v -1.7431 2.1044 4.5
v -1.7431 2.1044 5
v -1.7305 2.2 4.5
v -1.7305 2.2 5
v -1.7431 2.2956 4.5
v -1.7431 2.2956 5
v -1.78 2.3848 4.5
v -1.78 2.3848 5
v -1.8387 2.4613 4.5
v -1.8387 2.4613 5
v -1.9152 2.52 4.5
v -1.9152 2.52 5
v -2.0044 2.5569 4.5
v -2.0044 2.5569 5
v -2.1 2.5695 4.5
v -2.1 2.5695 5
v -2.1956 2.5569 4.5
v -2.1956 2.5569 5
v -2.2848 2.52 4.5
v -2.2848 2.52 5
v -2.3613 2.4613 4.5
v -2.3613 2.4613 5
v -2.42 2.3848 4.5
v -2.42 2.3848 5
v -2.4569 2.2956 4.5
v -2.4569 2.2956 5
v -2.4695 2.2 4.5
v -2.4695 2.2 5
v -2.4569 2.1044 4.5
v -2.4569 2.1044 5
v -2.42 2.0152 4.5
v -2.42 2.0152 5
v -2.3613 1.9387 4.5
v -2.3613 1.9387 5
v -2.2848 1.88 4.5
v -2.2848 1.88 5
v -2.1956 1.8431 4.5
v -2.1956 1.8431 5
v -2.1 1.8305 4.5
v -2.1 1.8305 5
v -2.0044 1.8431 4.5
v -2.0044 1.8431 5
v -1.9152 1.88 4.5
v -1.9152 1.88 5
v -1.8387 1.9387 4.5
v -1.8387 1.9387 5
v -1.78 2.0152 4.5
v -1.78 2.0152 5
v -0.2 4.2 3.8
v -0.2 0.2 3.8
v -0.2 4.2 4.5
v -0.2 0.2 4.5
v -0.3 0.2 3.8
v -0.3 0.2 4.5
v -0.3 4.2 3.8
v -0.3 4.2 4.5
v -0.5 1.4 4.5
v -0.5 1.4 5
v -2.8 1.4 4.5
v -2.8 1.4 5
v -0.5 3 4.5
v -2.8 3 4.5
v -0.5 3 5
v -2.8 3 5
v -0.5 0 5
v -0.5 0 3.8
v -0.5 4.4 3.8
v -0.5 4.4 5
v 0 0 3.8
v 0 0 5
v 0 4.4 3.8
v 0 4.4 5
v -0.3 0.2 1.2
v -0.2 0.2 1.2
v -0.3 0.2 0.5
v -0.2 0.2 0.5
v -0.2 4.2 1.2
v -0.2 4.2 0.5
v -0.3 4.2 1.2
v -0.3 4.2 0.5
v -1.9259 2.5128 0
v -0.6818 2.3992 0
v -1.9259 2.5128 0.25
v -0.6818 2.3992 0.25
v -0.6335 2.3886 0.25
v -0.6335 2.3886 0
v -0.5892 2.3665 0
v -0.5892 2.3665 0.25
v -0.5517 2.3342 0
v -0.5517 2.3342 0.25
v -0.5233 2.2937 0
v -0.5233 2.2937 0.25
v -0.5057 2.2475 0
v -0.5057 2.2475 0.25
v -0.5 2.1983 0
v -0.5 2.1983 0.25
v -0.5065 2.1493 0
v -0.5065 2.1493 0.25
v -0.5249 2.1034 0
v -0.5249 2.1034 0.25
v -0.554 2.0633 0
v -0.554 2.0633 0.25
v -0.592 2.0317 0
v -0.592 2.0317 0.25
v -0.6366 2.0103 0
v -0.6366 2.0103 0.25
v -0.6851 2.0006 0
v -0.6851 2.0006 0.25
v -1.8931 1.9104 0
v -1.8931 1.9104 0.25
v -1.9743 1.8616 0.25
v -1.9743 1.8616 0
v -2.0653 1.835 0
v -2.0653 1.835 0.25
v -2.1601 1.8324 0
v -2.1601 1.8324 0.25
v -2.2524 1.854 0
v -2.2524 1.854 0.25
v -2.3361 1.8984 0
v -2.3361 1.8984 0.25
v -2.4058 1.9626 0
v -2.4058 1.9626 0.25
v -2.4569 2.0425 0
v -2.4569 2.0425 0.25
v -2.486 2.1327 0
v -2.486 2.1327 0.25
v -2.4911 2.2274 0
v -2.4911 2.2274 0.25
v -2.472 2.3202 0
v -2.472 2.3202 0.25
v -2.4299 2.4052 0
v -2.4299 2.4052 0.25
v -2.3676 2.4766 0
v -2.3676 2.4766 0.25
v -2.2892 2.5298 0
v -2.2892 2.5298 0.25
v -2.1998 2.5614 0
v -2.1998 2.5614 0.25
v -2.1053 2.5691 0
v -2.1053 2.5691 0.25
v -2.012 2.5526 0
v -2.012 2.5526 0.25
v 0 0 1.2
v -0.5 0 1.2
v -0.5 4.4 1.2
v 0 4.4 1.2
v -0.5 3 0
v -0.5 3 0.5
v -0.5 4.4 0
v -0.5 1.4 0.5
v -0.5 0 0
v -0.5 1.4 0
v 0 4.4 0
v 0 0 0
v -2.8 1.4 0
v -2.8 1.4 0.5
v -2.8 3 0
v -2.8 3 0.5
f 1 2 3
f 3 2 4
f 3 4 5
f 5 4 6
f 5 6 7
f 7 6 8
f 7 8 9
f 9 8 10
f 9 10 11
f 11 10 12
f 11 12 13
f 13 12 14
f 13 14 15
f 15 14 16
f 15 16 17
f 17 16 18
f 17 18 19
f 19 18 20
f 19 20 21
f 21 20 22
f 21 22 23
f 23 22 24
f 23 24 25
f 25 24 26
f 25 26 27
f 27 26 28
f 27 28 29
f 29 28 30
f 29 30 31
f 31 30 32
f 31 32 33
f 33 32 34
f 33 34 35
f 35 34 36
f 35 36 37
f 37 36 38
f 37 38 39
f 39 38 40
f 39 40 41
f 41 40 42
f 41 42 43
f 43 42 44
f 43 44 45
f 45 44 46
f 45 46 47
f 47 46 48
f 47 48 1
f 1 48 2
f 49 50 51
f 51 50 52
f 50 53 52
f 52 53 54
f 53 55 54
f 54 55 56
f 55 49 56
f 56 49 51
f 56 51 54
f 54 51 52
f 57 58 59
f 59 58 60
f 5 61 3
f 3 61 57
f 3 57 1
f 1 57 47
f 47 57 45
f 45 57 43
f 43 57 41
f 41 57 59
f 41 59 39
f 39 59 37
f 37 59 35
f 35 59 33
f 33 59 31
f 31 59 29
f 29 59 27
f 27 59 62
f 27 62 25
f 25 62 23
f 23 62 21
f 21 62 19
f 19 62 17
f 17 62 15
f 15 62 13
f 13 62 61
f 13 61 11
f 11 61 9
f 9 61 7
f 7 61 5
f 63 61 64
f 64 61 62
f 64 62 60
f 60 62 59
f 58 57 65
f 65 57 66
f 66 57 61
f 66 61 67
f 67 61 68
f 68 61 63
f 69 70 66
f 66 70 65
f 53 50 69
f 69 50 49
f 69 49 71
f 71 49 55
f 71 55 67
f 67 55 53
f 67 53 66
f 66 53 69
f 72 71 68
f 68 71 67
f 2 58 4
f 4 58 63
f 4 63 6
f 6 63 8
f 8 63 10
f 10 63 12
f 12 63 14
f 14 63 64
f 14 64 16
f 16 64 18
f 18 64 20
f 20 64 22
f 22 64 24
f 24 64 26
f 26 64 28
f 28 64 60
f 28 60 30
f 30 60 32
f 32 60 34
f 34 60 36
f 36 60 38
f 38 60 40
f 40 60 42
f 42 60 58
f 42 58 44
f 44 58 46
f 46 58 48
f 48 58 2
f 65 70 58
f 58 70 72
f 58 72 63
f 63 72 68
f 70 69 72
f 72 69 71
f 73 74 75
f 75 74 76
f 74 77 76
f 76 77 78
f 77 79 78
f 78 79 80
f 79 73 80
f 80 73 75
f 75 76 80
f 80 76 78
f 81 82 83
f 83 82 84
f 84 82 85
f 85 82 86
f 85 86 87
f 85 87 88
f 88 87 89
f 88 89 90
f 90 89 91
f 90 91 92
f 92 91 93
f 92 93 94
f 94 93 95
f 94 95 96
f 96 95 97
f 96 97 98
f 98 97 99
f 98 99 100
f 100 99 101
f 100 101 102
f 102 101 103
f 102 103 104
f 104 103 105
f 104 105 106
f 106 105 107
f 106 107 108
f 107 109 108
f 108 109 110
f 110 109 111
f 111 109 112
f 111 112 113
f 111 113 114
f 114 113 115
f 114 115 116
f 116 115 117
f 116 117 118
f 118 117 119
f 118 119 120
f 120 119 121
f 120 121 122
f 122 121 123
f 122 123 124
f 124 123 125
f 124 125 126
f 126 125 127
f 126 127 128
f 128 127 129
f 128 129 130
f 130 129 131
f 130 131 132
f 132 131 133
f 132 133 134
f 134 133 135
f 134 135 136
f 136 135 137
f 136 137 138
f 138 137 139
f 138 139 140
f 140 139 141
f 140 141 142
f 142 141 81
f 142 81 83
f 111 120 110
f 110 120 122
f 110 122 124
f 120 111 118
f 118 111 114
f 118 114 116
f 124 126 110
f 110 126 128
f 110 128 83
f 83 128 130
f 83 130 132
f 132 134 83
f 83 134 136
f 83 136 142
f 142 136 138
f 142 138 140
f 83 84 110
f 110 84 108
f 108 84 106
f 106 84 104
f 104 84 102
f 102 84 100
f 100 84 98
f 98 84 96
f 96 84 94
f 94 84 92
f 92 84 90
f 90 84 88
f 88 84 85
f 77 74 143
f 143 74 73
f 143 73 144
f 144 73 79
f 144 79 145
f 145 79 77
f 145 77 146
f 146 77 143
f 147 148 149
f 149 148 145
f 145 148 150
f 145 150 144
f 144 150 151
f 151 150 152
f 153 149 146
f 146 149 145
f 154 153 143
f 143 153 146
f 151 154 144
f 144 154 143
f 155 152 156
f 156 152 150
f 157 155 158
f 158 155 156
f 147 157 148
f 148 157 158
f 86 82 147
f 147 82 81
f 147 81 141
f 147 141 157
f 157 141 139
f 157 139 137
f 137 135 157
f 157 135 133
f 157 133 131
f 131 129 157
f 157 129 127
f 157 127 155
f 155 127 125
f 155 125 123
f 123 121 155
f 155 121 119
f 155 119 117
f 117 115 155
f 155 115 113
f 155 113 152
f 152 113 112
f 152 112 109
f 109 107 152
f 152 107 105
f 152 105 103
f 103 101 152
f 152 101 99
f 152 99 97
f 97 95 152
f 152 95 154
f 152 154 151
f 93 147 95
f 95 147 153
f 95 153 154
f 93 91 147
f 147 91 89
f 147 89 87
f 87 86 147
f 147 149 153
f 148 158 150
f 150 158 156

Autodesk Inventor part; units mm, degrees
ref_plane "YZ Plane" through (0, 0, 0) normal (1, 0, 0) x (0, 1, 0)
ref_plane "XZ Plane" through (0, 0, 0) normal (0, 1, 0) x (-1, 0, 0)
ref_plane "XY Plane" through (0, 0, 0) normal (0, 0, 1) x (1, 0, 0)
sketch "Boceto8" plane through (0, 0, 0) normal (0, 0, 1) x (1, 0, 0)
  line L0 (-2.8, 3) -> (-0.5, 3)
  line L1 (-0.5, 1.4) -> (-2.8, 1.4)
  line L2 (-2.8, 3) -> (-2.8, 1.4)
  line L3 (0, 3) -> (0, 0)
  line L4 (0, 0) -> (-0.5, 0)
  line L5 (-0.5, 0) -> (-0.5, 1.4)
  line L6 (0, 3) -> (0, 4.4)
  line L7 (0, 4.4) -> (-0.5, 4.4)
  line L8 (-0.5, 4.4) -> (-0.5, 3)
extrude "Extrusión8" add sketch "Boceto8" along normal blind 0.5
sketch "Boceto9" plane through (0, 0, 0.5) normal (0, 0, 1) x (1, 0, 0)
  line L0 (-0.5, 3) -> (-2.8, 3) projected
  line L1 (-2.8, 3) -> (-2.8, 1.4) projected
  line L2 (-2.8, 1.4) -> (-0.5, 1.4) projected
  line L3 (-0.5, 1.4) -> (-0.5, 0) projected
  line L4 (-0.5, 0) -> (0, 0) projected
  line L5 (0, 0) -> (0, 4.4) projected
  line L6 (0, 4.4) -> (-0.5, 4.4) projected
  line L7 (-0.5, 4.4) -> (-0.5, 3) projected
  line L8 (0, 4.4) -> (0, 0) projected
  line L9 (-0.5, 4.4) -> (0, 4.4)
  line L10 (0, 4.4) -> (0, 0)
  line L11 (0, 0) -> (-0.5, 0)
  line L12 (-0.5, 0) -> (-0.5, 4.4)
extrude "Extrusión9" add sketch "Boceto9" along normal blind 0.7 contours L7 L6 L5 L4 L3 L12
sketch "Boceto10" plane through (0, 0, 0) normal (0, 0, -1) x (-1, 0, 0)
  line L0 (2.8, 3) -> (0.5, 3)
  line L1 (0.5, 3) -> (0.5, 4.4)
  line L2 (0.5, 4.4) -> (0, 4.4)
  line L3 (0, 4.4) -> (0, 0)
  line L4 (0, 0) -> (0.5, 0)
  line L5 (0.5, 0) -> (0.5, 1.4)
  line L6 (0.5, 1.4) -> (2.8, 1.4)
  line L7 (2.8, 1.4) -> (2.8, 3)
  arc A0 (1.893104, 1.910428) -> (1.925936, 2.512803) centre (2.122635, 2.2) ccw
  line L8 (0.685113, 2.000554) -> (1.893104, 1.910428)
  line L9 (0.681802, 2.399171) -> (1.925936, 2.512803)
  arc A1 (0.681802, 2.399171) -> (0.685113, 2.000554) centre (0.699993, 2.2) ccw
  line L10 (2.8, 1.4) -> (0.499993, 1.4)
  line L11 (0.499993, 3) -> (2.8, 3)
  line L12 (2.8, 1.4) -> (2.8, 3)
  line L13 (-0.000007, 1.4) -> (-0.000007, 4.4)
  line L14 (-0.000007, 4.4) -> (0.499993, 4.4)
  line L15 (0.499993, 4.4) -> (0.499993, 3)
  line L16 (-0.000007, 1.4) -> (-0.000007, 0)
  line L17 (-0.000007, 0) -> (0.499993, 0)
  line L18 (0.499993, 0) -> (0.499993, 1.4)
  line L19 (0.299993, 1.4) -> (0.299993, 4.2)
  line L20 (0.299993, 4.2) -> (0.199993, 4.2)
  line L21 (0.199993, 4.2) -> (0.199993, 1.4)
  line L22 (0.299993, 1.4) -> (0.299993, 0.2)
  line L23 (0.299993, 0.2) -> (0.199993, 0.2)
  line L24 (0.199993, 0.2) -> (0.199993, 1.4)
  line L25 (0.499993, 1.4) -> (0.499993, 3)
sketch "Boceto10 outline for Extrusión10" plane through (0, 0, 0) normal (0, 0, -1) x (-1, 0, 0)
  line L0 (0.685113, 2.000554) -> (1.893104, 1.910428)
  arc A0 (0.681802, 2.399171) -> (0.685113, 2.000554) centre (0.699993, 2.2) ccw
  line L1 (1.925936, 2.512803) -> (0.681802, 2.399171)
  arc A1 (1.893104, 1.910428) -> (1.925936, 2.512803) centre (2.122635, 2.2) ccw
extrude "Extrusión10" cut sketch "Boceto10 outline for Extrusión10" against normal blind 0.25
sketch "Boceto11" plane through (0, 0, 1.2) normal (0, 0, 1) x (1, 0, 0)
  line L0 (0, 0) -> (0, 4.4)
  line L1 (0, 4.4) -> (-0.5, 4.4)
  line L2 (-0.5, 4.4) -> (-0.5, 0)
  line L3 (-0.5, 0) -> (0, 0)
  arc A0 (-1.893111, 2.489572) -> (-1.925943, 1.887197) centre (-2.122641, 2.2) ccw
  line L4 (-0.68512, 2.399446) -> (-1.893111, 2.489572)
  line L5 (-0.681809, 2.000829) -> (-1.925943, 1.887197)
  arc A1 (-0.681809, 2.000829) -> (-0.68512, 2.399446) centre (-0.7, 2.2) ccw
  line L6 (-2.800007, 3) -> (-0.5, 3)
  line L7 (-0.5, 1.4) -> (-2.800007, 1.4)
  line L8 (-2.800007, 3) -> (-2.800007, 1.4)
  line L9 (0, 3) -> (0, 0)
  line L10 (0, 0) -> (-0.5, 0)
  line L11 (-0.5, 0) -> (-0.5, 1.4)
  line L12 (0, 3) -> (0, 4.4)
  line L13 (0, 4.4) -> (-0.5, 4.4)
  line L14 (-0.5, 4.4) -> (-0.5, 3)
  line L15 (-0.3, 3) -> (-0.3, 0.2)
  line L16 (-0.3, 0.2) -> (-0.2, 0.2)
  line L17 (-0.2, 0.2) -> (-0.2, 3)
  line L18 (-0.3, 3) -> (-0.3, 4.2)
  line L19 (-0.3, 4.2) -> (-0.2, 4.2)
  line L20 (-0.2, 4.2) -> (-0.2, 3)
  line L21 (-0.5, 3) -> (-0.5, 1.4)
extrude "Extrusión11" cut sketch "Boceto11" against normal blind 0.7 contours L18 L19 L20 L17 L16 L15
sketch "Boceto12" plane through (0, 0, 0) normal (1, 0, 0) x (0, 0, -1)
  line L0 (-5, 4.4) -> (-3.8, 4.4)
  line L1 (-3.8, 0) -> (-5, 0)
  line L2 (-5, 0) -> (-5, 4.4)
  line L3 (-5, 4.4) -> (-3.8, 4.4)
  line L4 (-3.8, 4.4) -> (-3.8, 0)
  point P0 (-0.5, 0.2)
  point P1 (0, 4.4)
extrude "Extrusión12" add sketch "Boceto12" against normal blind 0.5
sketch "Boceto13" plane through (-0.5, 0, 0) normal (-1, 0, 0) x (0, 0, 1)
  line L0 (0, 1.4) -> (0, 3) projected
  line L1 (0, 1.4) -> (0.5, 1.4) projected
  line L2 (0.5, 3) -> (0.5, 1.4) projected
  line L3 (0, 3) -> (0.5, 3) projected
  line L4 (0, 3) -> (0.5, 3)
  line L5 (0.5, 3) -> (0.5, 1.4)
  line L6 (0.5, 1.4) -> (0, 1.4)
  line L7 (0, 1.4) -> (0, 3)
  line L8 (4.5, 3) -> (5, 3)
  line L9 (5, 3) -> (5, 1.4)
  line L10 (5, 1.4) -> (4.5, 1.4)
  line L11 (4.5, 1.4) -> (4.5, 3)
  point P0 (0, 0)
extrude "Extrusión13" add sketch "Boceto13" along normal blind 2.3 contours L8 L9 L10 L11
sketch "Boceto14" plane through (0, 0, 3.8) normal (0, 0, -1) x (-1, 0, 0)
  line L0 (0.2, 4.2) -> (0.2, 0.2) projected
  line L1 (0.3, 0.2) -> (0.3, 4.2) projected
  line L2 (0.2, 4.2) -> (0.3, 4.2)
  line L3 (0.3, 4.2) -> (0.3, 0.2)
  line L4 (0.3, 0.2) -> (0.2, 0.2)
  line L5 (0.2, 0.2) -> (0.2, 4.2)
  point P0 (0, 0)
extrude "Extrusión14" cut sketch "Boceto14" against normal blind 0.7
sketch "Boceto15" plane through (0, 0, 5) normal (0, 0, 1) x (1, 0, 0)
  circle A0 centre (-2.1, 2.2) radius 0.369508
  line L0 (-2.8, 3) -> (-0.5, 3)
  line L1 (-0.5, 1.4) -> (-2.8, 1.4)
  line L2 (-2.8, 3) -> (-2.8, 1.4)
  line L3 (0, 3) -> (0, 0)
  line L4 (0, 0) -> (-0.5, 0)
  line L5 (-0.5, 0) -> (-0.5, 1.4)
  line L6 (0, 3) -> (0, 4.4)
  line L7 (0, 4.4) -> (-0.5, 4.4)
  line L8 (-0.5, 4.4) -> (-0.5, 3)
  line L9 (0, 4.4) -> (0, 0)
  line L10 (0, 4.4) -> (-0.5, 4.4)
  line L11 (-0.5, 3) -> (-0.5, 4.4)
  line L12 (-0.5, 3) -> (-2.8, 3)
  line L13 (-2.8, 1.4) -> (-2.8, 3)
  line L14 (-0.5, 1.4) -> (-2.8, 1.4)
  line L15 (-0.5, 0) -> (-0.5, 1.4)
  line L16 (0, 0) -> (-0.5, 0)
extrude "Extrusión15" cut sketch "Boceto15" against normal blind 0.9 contours A0
properties part number "learnbotAgarreCamara"
